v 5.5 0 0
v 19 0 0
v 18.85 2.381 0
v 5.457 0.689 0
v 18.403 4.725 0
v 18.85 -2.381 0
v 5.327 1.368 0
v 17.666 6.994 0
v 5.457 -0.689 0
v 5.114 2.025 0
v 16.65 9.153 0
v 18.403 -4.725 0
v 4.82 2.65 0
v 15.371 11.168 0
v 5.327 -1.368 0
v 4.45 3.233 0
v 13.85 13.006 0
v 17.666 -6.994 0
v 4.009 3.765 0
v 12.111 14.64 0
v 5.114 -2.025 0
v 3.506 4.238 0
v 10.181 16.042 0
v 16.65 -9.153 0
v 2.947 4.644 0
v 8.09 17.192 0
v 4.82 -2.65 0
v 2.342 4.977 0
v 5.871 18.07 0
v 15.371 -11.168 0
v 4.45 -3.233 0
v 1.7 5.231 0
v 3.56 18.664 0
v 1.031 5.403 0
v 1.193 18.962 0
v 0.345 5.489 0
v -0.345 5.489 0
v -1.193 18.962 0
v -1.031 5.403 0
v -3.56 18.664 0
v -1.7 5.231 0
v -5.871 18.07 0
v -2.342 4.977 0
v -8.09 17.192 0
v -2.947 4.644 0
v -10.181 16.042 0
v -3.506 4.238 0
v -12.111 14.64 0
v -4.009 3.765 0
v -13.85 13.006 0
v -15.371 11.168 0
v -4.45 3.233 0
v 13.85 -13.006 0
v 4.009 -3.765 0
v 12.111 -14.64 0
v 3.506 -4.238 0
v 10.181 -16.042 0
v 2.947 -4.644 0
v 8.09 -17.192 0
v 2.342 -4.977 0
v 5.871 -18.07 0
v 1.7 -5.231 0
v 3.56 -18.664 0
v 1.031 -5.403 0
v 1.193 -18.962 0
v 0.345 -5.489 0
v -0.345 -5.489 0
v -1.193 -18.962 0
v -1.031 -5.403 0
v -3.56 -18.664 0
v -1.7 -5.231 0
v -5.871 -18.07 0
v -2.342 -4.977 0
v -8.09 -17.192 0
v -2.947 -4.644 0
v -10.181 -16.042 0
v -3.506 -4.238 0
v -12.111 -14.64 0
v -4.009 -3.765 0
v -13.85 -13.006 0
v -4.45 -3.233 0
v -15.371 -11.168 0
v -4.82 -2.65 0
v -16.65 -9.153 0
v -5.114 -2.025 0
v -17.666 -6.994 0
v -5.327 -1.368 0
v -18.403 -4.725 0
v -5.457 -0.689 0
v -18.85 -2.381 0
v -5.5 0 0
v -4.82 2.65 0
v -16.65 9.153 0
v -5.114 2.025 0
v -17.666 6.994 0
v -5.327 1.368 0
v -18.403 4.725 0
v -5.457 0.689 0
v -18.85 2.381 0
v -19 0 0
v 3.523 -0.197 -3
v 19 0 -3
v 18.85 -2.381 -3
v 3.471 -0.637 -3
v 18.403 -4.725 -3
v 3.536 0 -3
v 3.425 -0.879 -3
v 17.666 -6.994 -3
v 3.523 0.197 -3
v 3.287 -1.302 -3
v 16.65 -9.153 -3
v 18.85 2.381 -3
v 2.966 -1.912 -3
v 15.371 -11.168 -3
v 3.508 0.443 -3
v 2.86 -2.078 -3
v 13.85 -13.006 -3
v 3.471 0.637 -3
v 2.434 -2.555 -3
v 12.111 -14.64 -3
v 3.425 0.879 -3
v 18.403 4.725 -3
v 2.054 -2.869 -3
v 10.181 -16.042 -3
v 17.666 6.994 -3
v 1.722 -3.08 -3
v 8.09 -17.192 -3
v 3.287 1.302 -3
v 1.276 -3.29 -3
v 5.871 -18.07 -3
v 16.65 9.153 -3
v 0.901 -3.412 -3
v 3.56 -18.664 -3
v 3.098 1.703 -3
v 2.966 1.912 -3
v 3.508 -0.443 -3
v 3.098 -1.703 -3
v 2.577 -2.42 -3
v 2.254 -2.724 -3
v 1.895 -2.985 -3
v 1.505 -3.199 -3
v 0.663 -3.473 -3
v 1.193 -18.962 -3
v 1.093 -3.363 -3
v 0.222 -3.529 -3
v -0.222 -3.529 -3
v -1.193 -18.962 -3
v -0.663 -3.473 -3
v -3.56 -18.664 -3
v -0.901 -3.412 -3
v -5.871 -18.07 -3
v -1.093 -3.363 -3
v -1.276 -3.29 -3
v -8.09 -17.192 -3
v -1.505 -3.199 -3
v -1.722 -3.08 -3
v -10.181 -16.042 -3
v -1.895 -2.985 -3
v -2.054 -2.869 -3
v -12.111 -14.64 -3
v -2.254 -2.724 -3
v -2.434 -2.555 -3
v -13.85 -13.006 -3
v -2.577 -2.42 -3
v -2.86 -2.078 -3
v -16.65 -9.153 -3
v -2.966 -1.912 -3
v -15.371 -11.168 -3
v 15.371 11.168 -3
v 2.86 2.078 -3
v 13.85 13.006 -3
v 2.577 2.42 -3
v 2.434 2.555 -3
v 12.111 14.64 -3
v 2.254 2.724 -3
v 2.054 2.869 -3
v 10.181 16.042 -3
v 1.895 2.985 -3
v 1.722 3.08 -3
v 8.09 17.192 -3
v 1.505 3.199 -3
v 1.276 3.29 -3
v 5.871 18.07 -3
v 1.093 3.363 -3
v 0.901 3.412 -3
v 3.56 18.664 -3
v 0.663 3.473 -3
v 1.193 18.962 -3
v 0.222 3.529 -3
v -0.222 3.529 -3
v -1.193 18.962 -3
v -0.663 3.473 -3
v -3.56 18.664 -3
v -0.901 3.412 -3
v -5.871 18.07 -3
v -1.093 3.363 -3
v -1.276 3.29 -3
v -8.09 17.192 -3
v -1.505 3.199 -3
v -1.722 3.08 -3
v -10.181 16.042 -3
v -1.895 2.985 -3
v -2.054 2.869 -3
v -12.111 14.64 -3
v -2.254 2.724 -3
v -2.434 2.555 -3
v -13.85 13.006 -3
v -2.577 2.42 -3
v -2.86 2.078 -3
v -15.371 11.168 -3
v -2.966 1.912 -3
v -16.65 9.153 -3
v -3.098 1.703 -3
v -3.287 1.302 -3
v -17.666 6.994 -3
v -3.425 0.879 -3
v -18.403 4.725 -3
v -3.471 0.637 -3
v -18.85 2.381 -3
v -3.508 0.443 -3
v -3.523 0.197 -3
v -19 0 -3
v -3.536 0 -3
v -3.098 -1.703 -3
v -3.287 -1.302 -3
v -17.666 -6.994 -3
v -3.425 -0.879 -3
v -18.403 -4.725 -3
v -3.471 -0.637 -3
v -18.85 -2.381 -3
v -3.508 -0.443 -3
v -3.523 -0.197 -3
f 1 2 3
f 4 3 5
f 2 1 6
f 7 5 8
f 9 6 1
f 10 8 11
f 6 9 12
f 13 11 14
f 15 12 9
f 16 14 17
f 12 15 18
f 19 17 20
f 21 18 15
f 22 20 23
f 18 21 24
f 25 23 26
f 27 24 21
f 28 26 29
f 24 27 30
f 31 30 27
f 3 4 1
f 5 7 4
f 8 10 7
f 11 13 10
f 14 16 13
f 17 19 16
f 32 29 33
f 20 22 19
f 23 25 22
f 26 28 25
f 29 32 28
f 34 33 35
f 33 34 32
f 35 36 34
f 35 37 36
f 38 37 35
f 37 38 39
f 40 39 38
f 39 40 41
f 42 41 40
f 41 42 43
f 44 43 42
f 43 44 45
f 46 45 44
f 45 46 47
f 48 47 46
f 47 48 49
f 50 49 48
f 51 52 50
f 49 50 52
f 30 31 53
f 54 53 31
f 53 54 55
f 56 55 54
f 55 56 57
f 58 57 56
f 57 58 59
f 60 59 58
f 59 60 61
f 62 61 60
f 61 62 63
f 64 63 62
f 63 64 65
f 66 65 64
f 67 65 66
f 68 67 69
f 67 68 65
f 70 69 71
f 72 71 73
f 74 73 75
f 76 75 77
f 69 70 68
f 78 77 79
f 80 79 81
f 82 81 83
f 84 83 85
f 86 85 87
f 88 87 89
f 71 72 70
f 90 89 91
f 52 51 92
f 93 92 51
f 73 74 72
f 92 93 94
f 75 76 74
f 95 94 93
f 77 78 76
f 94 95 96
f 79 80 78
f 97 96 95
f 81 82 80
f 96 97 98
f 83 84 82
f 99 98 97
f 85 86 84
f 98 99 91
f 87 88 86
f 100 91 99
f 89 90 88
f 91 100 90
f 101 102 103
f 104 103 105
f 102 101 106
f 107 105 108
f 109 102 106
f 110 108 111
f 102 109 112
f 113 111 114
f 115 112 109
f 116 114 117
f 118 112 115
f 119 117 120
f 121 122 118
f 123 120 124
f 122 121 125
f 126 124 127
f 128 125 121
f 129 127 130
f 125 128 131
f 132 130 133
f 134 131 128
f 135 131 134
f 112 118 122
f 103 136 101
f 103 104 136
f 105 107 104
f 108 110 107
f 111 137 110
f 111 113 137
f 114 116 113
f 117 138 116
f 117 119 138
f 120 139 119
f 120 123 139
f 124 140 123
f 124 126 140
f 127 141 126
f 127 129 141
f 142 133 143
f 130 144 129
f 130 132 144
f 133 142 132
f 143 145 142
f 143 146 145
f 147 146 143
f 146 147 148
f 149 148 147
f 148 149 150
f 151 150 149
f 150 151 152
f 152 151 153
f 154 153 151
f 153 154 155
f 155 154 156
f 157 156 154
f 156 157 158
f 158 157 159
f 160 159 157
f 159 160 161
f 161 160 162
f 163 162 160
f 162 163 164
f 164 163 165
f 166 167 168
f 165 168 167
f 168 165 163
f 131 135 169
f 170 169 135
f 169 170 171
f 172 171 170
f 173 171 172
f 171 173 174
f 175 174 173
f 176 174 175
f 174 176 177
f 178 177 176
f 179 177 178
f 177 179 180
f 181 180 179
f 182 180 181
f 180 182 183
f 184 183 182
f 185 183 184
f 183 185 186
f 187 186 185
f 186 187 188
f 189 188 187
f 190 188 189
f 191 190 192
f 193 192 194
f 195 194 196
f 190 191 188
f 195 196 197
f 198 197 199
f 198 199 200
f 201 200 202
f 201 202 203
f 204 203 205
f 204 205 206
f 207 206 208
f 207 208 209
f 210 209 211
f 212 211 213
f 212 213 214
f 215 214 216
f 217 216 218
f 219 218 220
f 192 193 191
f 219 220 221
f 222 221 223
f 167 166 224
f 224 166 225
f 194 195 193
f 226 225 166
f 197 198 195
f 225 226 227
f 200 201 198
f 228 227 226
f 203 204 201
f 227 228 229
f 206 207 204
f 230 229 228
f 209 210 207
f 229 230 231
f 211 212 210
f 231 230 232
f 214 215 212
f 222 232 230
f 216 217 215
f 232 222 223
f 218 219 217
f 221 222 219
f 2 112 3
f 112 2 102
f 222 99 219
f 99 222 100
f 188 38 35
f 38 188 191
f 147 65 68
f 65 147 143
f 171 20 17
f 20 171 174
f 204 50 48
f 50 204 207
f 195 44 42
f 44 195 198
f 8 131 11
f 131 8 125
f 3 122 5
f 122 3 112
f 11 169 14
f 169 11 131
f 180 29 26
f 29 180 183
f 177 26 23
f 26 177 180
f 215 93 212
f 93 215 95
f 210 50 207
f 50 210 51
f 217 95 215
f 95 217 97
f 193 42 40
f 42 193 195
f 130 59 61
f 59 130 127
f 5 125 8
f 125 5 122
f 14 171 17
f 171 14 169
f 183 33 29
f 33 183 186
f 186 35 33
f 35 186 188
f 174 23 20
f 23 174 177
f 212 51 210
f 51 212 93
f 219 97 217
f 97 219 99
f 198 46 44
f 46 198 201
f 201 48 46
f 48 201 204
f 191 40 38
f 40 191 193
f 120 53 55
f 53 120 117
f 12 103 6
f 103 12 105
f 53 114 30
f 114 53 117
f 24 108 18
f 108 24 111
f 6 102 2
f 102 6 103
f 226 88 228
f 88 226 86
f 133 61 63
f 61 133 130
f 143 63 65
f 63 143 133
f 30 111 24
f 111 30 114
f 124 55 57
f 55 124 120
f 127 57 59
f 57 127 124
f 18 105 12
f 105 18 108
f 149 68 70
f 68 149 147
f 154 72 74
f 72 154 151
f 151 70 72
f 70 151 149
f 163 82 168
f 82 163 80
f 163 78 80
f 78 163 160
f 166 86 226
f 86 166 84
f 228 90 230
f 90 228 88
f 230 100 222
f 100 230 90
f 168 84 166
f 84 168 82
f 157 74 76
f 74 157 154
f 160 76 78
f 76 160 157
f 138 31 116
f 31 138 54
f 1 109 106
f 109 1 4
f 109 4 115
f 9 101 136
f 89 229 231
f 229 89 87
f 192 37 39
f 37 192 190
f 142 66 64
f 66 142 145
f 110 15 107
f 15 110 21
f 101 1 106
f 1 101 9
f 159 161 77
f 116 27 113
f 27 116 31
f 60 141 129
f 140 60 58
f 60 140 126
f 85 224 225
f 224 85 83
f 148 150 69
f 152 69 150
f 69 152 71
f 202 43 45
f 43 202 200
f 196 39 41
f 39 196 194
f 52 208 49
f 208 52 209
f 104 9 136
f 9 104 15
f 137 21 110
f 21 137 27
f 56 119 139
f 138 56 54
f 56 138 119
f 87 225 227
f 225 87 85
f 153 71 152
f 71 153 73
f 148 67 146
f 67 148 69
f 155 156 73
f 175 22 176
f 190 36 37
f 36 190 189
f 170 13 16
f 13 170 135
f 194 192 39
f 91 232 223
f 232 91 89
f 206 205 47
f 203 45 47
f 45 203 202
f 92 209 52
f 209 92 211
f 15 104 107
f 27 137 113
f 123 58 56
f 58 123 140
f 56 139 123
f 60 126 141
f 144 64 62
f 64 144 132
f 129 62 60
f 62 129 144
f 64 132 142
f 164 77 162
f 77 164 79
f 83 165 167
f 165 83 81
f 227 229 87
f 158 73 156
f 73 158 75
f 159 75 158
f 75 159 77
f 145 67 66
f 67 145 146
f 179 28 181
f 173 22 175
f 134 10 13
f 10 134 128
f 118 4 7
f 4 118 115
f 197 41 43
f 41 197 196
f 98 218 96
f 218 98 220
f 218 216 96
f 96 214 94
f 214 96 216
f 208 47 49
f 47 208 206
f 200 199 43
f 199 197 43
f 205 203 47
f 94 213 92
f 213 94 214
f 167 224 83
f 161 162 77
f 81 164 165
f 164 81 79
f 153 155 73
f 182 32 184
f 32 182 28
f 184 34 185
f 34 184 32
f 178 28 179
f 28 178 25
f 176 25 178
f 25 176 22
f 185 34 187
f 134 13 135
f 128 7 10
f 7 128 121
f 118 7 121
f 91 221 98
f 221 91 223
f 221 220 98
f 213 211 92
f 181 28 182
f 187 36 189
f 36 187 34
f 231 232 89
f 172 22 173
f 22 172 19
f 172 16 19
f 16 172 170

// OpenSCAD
$fn = 50;


difference() {
	union() {
		translate(v = [0, 0, -3.0000000000]) {
			cylinder(h = 3, r = 10.0000000000);
		}
		translate(v = [0, 0, -3.0000000000]) {
			cylinder(h = 3, r = 19.0000000000);
		}
	}
	union() {
		translate(v = [0, 0, 0]) {
			rotate(a = [0, 0, 0]) {
				difference() {
					union() {
						#translate(v = [0, 0, -3.0000000000]) {
							cylinder(h = 3, r = 2.2500000000);
						}
						#translate(v = [0, 0, -4.2000000000]) {
							cylinder(h = 4.2000000000, r1 = 2.7500000000, r2 = 5.5000000000);
						}
						#translate(v = [0, 0, -3.0000000000]) {
							cylinder(h = 3, r = 2.7500000000);
						}
						#translate(v = [0, 0, -3.0000000000]) {
							cylinder(h = 3, r = 2.2500000000);
						}
					}
					union();
				}
			}
		}
	}
}
